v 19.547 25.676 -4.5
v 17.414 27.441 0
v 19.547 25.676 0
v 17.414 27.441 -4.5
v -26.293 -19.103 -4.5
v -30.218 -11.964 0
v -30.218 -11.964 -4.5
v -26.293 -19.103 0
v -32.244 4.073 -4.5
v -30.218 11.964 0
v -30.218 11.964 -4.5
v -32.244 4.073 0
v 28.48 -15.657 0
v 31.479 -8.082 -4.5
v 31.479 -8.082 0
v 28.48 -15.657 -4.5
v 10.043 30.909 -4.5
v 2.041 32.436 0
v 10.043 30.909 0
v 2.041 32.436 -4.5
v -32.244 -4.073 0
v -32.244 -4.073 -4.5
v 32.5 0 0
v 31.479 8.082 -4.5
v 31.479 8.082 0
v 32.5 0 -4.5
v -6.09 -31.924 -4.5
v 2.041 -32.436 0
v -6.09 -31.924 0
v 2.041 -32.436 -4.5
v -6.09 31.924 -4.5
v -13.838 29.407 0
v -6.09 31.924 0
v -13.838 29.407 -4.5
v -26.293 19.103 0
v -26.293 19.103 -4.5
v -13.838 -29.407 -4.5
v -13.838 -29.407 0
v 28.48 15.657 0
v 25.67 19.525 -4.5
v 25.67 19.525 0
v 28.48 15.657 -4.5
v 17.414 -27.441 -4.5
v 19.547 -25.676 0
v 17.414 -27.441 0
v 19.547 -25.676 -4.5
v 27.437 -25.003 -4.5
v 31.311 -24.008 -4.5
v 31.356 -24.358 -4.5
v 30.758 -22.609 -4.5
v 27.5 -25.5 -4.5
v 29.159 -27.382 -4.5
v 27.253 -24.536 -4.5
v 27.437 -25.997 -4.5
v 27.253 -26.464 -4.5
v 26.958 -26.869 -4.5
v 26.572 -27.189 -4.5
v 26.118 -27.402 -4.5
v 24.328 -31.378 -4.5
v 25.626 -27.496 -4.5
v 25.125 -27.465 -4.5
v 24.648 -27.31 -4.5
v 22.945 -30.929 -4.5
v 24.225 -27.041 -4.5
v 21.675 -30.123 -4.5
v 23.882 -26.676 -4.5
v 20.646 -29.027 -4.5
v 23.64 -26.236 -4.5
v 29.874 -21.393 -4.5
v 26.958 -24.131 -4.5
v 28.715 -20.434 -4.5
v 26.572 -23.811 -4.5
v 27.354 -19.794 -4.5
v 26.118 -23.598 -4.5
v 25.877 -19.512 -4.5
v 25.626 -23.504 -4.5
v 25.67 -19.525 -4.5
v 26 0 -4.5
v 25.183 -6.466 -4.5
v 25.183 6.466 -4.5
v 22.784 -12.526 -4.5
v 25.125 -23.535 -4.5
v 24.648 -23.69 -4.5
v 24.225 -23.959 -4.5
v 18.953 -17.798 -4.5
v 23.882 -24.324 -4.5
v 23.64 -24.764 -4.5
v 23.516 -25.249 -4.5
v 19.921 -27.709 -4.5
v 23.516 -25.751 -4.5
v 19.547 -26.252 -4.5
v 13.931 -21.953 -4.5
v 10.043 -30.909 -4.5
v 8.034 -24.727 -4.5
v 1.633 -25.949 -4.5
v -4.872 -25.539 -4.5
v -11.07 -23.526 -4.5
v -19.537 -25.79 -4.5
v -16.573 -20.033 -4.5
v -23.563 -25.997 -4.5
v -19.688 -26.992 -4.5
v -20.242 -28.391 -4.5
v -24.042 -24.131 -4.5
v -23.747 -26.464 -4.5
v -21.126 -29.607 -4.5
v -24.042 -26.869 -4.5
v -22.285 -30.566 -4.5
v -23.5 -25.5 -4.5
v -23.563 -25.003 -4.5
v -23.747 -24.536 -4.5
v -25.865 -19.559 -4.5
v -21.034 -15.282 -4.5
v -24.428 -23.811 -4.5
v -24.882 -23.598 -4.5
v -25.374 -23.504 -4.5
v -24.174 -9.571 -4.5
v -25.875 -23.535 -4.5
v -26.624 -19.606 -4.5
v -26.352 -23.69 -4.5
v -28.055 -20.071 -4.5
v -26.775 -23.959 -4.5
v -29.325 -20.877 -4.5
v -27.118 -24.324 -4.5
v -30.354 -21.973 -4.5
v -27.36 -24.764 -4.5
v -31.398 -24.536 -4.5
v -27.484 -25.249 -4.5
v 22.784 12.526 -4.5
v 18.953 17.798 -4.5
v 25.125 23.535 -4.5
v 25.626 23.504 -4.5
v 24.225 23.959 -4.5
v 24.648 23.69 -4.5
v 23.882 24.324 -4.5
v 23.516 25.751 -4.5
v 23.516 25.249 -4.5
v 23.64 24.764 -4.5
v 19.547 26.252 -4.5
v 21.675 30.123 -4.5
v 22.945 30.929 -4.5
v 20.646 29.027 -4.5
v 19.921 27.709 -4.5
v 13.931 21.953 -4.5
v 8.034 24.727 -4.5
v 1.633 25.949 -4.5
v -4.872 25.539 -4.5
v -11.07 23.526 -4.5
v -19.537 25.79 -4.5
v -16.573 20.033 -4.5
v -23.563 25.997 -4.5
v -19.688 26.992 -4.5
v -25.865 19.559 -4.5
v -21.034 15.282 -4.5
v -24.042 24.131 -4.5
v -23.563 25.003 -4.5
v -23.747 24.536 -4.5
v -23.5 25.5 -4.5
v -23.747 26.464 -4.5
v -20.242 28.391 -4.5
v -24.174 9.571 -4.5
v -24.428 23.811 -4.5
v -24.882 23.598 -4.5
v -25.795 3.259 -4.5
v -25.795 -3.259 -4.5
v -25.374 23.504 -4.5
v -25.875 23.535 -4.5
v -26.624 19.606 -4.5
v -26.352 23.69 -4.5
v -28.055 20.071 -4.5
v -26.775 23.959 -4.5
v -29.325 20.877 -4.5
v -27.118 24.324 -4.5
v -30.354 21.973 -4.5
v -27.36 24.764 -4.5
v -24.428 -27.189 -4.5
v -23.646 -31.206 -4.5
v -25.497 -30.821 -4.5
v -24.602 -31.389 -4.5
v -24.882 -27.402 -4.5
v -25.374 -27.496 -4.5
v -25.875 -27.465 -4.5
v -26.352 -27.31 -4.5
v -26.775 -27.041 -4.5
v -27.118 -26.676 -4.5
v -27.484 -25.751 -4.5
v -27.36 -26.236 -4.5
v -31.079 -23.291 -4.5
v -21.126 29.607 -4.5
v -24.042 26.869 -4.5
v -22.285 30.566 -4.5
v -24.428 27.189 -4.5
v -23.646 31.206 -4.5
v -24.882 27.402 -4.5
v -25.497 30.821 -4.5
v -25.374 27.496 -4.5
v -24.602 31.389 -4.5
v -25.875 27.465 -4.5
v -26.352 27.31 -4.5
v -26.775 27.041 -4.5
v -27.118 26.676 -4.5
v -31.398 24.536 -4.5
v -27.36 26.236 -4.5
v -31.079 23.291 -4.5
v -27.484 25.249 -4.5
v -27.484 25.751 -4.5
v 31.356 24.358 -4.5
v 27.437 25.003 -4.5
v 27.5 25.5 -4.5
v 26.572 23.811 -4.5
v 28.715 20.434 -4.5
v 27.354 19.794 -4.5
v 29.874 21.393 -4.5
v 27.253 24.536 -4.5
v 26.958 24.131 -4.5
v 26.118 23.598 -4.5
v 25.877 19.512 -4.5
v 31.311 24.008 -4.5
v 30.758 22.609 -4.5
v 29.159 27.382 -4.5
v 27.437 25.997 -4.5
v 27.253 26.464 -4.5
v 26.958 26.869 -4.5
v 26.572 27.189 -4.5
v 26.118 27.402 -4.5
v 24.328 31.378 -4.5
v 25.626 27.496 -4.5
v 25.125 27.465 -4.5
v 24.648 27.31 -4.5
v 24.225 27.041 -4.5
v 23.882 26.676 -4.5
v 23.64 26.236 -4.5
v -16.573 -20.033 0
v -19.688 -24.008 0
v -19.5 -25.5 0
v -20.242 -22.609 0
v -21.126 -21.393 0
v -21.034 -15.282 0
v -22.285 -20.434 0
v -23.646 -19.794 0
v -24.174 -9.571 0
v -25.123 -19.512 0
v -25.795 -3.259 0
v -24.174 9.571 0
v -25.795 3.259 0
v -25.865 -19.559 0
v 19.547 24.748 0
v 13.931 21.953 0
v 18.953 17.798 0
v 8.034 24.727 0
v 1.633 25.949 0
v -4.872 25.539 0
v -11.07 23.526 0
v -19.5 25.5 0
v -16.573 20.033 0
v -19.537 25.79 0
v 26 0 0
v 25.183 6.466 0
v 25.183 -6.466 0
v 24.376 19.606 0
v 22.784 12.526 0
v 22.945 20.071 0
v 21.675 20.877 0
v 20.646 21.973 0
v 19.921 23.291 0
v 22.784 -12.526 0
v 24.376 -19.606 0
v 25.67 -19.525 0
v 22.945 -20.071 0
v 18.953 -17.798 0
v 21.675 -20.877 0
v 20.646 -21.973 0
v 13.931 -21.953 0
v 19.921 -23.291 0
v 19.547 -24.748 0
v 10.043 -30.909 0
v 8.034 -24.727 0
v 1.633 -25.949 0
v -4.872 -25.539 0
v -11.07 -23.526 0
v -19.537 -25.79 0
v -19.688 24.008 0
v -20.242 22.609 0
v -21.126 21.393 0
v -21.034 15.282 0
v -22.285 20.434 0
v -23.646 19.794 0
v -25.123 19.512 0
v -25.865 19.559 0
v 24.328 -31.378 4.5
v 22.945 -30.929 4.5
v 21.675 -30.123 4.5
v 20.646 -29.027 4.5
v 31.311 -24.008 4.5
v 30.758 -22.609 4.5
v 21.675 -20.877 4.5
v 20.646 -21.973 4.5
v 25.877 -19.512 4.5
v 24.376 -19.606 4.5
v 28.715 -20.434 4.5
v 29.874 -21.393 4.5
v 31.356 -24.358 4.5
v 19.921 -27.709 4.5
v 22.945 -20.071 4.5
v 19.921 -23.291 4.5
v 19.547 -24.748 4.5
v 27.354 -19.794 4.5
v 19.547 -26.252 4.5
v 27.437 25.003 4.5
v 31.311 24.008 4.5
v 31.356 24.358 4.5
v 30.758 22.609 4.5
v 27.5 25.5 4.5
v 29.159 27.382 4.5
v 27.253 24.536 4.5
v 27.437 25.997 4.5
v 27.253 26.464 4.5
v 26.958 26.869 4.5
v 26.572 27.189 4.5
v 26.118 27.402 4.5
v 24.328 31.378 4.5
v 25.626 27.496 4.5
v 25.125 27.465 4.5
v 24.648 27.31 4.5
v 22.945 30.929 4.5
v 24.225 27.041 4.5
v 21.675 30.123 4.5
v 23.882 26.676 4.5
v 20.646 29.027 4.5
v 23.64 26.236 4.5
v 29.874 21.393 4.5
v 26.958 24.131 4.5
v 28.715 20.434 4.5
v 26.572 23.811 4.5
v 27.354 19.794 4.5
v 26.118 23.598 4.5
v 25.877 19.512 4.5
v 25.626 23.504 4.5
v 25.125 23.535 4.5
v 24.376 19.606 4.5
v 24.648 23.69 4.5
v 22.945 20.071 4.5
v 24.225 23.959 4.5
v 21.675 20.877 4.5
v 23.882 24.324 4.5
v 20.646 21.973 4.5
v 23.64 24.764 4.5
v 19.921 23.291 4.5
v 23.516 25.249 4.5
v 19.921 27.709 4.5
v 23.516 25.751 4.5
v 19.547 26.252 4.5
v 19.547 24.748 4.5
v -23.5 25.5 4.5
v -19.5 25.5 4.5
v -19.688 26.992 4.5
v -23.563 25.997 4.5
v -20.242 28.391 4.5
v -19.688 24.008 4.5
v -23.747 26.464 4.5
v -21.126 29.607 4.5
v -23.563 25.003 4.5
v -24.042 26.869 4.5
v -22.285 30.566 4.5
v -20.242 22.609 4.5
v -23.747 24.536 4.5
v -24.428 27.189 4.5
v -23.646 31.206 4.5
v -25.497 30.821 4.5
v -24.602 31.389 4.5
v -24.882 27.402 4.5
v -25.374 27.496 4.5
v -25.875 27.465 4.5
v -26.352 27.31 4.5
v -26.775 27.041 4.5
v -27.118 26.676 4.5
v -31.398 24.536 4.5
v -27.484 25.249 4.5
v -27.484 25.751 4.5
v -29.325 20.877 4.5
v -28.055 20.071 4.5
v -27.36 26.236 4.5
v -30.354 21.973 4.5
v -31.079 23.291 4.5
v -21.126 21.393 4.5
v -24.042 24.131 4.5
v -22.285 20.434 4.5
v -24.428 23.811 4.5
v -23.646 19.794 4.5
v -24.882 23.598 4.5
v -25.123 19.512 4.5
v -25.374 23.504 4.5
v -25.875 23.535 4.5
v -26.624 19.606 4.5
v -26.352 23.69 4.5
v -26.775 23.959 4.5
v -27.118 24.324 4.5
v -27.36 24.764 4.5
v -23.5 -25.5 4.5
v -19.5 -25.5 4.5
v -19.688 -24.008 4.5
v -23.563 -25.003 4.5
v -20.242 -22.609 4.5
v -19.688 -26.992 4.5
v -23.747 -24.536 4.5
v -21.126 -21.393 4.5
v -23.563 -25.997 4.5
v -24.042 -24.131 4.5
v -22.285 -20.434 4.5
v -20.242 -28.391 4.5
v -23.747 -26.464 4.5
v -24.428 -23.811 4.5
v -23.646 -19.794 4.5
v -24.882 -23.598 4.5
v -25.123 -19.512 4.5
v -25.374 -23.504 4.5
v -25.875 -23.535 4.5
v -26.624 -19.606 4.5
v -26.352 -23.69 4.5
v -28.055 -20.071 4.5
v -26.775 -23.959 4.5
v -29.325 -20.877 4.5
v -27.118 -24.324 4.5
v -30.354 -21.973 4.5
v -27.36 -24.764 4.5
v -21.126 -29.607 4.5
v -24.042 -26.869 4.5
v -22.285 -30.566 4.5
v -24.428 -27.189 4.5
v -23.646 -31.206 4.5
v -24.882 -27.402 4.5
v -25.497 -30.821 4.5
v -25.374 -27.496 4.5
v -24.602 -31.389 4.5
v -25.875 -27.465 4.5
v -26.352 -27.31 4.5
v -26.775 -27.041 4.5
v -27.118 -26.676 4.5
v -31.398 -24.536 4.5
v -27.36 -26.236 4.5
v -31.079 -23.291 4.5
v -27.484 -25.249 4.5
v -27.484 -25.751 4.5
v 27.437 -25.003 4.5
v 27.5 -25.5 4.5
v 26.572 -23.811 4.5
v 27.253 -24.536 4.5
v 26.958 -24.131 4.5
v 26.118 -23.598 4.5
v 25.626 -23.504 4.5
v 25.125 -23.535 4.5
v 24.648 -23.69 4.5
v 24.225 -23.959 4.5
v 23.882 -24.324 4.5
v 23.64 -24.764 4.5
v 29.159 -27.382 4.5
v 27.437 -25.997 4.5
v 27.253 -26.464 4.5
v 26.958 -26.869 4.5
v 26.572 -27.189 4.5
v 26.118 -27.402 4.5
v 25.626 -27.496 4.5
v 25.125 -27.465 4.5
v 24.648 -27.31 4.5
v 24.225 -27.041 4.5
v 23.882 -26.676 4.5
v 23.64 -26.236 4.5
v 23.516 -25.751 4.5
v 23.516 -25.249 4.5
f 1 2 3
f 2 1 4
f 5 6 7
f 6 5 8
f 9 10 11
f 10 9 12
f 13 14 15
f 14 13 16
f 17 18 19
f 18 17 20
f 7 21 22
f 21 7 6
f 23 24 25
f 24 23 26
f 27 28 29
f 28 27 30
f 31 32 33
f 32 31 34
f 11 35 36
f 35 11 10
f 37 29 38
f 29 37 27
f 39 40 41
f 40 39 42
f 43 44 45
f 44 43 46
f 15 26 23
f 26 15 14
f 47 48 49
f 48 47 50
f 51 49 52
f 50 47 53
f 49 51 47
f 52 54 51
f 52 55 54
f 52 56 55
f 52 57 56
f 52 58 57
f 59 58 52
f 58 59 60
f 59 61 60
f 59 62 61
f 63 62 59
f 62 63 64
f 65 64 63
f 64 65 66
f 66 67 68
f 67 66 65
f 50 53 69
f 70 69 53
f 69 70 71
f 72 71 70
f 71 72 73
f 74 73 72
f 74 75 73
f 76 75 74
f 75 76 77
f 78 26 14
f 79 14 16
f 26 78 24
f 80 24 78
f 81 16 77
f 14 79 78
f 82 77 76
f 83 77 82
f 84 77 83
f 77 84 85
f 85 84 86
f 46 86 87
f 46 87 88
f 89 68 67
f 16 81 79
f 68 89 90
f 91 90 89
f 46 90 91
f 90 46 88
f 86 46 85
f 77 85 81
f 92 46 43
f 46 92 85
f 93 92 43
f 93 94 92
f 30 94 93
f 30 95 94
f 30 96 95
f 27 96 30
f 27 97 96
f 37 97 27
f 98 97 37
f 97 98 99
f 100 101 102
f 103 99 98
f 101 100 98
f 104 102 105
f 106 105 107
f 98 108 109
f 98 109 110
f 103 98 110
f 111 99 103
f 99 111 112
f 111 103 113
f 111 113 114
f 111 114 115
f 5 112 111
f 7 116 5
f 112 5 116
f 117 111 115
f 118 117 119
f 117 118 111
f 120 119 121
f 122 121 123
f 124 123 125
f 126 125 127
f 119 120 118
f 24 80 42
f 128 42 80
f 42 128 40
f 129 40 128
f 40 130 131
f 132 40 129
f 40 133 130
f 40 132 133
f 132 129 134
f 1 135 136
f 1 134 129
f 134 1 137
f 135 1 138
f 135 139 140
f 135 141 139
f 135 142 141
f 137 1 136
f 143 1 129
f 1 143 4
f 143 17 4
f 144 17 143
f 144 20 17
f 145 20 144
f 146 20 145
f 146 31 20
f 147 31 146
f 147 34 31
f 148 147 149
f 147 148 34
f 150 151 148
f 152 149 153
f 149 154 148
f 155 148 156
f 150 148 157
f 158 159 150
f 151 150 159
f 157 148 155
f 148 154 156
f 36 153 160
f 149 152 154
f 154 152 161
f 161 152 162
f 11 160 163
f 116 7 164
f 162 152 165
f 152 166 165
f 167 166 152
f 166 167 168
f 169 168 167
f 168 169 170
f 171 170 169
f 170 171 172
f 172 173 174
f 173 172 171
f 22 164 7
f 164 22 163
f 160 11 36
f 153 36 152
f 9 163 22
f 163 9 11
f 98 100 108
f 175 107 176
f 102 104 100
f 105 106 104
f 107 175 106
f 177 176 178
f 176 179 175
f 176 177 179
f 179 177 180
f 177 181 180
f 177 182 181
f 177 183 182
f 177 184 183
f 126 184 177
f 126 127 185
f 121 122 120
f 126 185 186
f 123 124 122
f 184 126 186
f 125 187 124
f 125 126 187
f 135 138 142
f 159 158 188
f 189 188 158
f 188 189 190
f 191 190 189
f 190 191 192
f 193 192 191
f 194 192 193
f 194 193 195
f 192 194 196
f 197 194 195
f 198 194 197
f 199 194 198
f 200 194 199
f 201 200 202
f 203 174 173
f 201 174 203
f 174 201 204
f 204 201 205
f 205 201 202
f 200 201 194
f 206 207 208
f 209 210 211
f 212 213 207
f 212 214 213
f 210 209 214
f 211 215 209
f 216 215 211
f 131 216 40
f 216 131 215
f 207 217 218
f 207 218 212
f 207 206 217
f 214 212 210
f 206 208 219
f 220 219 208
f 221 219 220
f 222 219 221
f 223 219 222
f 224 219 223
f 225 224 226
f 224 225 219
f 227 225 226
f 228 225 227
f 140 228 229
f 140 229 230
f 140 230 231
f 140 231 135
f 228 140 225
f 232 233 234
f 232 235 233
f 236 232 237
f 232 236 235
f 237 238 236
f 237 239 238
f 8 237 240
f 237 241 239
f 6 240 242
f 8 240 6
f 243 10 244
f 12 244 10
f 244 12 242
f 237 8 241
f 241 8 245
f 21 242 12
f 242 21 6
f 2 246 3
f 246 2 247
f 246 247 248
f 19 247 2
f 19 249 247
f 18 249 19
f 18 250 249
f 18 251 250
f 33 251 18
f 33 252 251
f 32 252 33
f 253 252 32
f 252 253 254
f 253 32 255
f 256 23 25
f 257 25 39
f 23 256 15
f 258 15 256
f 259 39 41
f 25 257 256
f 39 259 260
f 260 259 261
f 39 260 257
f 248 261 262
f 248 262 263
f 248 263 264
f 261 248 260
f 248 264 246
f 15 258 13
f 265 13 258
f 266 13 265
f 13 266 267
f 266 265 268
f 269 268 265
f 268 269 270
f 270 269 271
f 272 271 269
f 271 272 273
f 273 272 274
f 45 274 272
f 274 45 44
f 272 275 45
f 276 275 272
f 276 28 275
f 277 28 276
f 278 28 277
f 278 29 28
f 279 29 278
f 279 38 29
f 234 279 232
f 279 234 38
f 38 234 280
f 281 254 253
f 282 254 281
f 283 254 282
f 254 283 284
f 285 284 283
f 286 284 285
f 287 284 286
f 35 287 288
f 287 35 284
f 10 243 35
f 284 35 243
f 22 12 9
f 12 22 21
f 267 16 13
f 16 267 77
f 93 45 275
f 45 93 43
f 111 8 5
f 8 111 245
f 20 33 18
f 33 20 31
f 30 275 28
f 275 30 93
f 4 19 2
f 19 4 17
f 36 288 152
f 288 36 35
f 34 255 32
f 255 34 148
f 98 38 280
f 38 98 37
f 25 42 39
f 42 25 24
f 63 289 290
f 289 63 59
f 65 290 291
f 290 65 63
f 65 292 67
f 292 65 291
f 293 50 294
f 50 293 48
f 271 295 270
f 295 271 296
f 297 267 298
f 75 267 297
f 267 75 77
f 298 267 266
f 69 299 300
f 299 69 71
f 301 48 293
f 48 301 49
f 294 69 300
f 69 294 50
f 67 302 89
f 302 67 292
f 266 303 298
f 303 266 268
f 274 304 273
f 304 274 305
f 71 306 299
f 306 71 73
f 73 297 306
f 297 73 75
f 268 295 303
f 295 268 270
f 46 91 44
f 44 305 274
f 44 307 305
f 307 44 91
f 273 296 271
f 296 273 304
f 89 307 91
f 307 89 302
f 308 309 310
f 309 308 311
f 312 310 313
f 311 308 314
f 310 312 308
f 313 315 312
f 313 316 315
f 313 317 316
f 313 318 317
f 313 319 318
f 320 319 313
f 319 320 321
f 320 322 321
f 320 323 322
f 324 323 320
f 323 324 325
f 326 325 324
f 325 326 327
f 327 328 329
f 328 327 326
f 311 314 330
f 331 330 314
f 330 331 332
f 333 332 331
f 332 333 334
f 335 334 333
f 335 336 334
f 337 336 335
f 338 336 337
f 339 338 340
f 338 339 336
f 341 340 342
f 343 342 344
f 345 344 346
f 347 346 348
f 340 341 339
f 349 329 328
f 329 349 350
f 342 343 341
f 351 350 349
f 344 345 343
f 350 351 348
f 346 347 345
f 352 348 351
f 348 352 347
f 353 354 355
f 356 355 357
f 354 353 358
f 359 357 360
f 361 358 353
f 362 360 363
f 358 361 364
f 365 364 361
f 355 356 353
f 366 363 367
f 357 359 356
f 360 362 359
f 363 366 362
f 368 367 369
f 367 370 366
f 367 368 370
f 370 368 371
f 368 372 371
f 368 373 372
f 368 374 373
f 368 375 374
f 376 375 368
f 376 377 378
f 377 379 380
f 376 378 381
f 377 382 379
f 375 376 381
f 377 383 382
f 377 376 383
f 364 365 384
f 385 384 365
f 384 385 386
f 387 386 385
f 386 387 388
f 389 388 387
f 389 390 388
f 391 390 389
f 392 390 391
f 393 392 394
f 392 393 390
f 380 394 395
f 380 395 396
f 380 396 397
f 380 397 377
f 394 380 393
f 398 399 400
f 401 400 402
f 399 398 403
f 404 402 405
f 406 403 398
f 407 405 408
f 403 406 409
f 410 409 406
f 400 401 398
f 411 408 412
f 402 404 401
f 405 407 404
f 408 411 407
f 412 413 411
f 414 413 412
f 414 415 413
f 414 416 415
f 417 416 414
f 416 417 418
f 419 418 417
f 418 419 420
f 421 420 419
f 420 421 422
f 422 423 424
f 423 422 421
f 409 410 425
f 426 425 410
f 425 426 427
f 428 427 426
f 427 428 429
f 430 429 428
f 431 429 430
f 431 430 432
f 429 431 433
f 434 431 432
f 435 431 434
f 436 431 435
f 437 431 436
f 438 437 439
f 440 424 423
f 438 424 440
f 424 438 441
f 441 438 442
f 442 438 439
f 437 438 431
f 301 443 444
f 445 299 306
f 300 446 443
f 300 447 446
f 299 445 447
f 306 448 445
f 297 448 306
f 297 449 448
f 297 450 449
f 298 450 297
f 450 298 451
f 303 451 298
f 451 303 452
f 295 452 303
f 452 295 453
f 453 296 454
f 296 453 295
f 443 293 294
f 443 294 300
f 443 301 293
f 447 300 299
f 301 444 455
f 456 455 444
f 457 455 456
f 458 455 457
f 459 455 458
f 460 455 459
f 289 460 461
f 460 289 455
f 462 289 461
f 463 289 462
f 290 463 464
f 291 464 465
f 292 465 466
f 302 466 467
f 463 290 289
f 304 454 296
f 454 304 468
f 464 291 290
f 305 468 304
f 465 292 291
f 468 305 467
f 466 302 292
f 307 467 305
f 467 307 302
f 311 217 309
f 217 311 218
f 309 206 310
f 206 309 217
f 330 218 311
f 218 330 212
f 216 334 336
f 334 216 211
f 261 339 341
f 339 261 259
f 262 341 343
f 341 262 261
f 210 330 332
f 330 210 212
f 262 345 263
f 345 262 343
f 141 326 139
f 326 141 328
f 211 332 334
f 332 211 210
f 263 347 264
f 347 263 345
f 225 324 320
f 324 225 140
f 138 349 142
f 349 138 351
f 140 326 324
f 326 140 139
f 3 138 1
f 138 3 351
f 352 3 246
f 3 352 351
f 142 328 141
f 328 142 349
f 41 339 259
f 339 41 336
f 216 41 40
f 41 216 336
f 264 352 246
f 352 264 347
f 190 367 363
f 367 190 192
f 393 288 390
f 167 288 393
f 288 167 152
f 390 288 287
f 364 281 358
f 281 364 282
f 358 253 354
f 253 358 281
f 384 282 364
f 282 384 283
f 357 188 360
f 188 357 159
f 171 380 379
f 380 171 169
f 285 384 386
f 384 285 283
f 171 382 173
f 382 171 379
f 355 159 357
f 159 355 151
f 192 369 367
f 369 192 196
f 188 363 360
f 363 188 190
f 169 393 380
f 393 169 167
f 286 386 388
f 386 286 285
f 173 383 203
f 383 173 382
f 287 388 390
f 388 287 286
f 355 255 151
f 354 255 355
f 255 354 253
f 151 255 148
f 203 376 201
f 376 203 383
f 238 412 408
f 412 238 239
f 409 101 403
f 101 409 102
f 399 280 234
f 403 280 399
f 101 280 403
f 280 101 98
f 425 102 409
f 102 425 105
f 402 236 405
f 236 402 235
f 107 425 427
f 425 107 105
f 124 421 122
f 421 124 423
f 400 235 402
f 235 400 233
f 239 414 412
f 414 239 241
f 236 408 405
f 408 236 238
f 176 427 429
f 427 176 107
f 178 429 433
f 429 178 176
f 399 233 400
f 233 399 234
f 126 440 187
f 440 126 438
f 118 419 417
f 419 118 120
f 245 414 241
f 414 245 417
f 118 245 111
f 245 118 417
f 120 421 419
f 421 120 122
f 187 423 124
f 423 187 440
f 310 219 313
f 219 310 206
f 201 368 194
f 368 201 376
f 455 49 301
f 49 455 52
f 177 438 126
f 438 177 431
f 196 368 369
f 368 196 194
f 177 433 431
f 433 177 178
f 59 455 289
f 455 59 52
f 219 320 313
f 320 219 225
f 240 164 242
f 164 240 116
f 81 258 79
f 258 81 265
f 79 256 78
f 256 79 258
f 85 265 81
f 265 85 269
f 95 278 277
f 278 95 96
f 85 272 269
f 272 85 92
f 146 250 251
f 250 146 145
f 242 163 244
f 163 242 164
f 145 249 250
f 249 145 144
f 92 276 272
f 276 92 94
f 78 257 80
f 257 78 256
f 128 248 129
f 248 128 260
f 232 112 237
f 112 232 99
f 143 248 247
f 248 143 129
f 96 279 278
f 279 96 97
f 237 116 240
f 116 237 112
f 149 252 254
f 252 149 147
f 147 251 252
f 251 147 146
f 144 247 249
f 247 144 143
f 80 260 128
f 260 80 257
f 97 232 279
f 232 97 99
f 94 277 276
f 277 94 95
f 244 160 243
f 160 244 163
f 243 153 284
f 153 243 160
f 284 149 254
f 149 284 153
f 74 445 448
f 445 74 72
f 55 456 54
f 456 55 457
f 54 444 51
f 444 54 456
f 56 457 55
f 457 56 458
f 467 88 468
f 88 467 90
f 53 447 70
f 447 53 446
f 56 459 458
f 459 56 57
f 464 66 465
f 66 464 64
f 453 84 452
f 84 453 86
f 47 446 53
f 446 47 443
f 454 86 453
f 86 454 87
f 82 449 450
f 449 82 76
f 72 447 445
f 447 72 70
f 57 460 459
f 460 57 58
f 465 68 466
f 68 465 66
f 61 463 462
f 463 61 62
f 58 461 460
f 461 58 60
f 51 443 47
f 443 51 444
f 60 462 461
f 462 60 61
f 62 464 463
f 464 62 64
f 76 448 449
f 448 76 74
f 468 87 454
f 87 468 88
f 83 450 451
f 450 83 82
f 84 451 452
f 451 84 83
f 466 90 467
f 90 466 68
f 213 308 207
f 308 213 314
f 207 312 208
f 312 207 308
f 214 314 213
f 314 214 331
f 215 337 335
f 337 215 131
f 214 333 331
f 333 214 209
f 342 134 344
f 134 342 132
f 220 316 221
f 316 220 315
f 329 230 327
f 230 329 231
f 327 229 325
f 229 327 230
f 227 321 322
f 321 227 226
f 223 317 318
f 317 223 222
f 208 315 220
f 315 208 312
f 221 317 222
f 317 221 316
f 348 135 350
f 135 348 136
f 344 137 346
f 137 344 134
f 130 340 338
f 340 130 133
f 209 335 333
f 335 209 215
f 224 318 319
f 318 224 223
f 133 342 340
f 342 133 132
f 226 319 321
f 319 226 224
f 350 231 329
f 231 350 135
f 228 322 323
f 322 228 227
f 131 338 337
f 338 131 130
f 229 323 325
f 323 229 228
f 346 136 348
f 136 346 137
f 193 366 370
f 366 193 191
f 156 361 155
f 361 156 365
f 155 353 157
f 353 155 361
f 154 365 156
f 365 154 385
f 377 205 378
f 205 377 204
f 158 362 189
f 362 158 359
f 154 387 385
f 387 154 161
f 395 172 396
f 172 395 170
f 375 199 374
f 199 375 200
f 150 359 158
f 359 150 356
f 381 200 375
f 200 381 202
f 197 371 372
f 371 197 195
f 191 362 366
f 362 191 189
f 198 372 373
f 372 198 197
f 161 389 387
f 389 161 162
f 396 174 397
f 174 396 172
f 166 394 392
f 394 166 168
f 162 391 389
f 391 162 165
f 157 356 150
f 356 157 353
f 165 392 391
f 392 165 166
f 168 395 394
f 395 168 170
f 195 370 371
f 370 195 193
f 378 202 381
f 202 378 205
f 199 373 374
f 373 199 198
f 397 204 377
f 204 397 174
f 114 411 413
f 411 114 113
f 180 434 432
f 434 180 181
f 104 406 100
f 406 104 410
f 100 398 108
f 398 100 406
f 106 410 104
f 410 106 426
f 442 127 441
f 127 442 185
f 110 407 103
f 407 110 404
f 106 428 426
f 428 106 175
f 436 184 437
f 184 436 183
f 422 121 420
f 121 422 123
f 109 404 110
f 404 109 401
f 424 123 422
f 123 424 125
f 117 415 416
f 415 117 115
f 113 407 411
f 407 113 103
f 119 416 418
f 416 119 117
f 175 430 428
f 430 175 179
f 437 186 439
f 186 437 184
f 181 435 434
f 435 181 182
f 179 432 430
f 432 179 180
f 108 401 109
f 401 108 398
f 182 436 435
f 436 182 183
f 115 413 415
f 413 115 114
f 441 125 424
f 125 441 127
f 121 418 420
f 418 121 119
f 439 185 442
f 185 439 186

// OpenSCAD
$fn=25;

module PCB_brace() {
difference() {
    a = 4;
    cube([9+45,28+9,3]);
    translate([9,0,0]) cube([45-9,28,3]);
    translate([9/2,9/2,0]) cylinder(10,d=a);
    translate([9/2,28+9/2,0]) cylinder(10,d=a);
    translate([45+9/2,9/2,0]) cylinder(10,d=a);
    translate([45+9/2,28+9/2,0]) cylinder(10,d=a);
}
}

//PCB_brace();

module makeBoss() {
    difference() {
        cylinder(11,d=10);
        cylinder(11,d=4);
    }
}

module speaker_brace() {
    x = 1; // sqrt(2)/2;
    y = 51;
    z = 9;
    difference() {
        union() {
            cylinder(4.5,d=65);
            translate([y/2*x, y/2*x, -4.5]) cylinder(z,d=12);
            translate([y/2*x, -y/2*x, -4.5]) cylinder(z,d=12);
            translate([-y/2*x, -y/2*x, -4.5]) cylinder(z,d=12);
            translate([-y/2*x, y/2*x, -4.5]) cylinder(z,d=12);
        }
        cylinder(4.5,d=52);
        translate([0,0, -4.5])
            difference() { cylinder(9,d=90); cylinder(9,d=80);}

        translate([y/2*x, y/2*x, -4.5]) cylinder(z,d=4);
        translate([y/2*x, -y/2*x, -4.5]) cylinder(z,d=4);
        translate([-y/2*x, -y/2*x, -4.5]) cylinder(z,d=4);
        translate([-y/2*x, y/2*x, -4.5]) cylinder(z,d=4);
    }
}

rotate([180,0,0]) {
speaker_brace();
//translate([45,-20,1.5]) PCB_brace();
}
